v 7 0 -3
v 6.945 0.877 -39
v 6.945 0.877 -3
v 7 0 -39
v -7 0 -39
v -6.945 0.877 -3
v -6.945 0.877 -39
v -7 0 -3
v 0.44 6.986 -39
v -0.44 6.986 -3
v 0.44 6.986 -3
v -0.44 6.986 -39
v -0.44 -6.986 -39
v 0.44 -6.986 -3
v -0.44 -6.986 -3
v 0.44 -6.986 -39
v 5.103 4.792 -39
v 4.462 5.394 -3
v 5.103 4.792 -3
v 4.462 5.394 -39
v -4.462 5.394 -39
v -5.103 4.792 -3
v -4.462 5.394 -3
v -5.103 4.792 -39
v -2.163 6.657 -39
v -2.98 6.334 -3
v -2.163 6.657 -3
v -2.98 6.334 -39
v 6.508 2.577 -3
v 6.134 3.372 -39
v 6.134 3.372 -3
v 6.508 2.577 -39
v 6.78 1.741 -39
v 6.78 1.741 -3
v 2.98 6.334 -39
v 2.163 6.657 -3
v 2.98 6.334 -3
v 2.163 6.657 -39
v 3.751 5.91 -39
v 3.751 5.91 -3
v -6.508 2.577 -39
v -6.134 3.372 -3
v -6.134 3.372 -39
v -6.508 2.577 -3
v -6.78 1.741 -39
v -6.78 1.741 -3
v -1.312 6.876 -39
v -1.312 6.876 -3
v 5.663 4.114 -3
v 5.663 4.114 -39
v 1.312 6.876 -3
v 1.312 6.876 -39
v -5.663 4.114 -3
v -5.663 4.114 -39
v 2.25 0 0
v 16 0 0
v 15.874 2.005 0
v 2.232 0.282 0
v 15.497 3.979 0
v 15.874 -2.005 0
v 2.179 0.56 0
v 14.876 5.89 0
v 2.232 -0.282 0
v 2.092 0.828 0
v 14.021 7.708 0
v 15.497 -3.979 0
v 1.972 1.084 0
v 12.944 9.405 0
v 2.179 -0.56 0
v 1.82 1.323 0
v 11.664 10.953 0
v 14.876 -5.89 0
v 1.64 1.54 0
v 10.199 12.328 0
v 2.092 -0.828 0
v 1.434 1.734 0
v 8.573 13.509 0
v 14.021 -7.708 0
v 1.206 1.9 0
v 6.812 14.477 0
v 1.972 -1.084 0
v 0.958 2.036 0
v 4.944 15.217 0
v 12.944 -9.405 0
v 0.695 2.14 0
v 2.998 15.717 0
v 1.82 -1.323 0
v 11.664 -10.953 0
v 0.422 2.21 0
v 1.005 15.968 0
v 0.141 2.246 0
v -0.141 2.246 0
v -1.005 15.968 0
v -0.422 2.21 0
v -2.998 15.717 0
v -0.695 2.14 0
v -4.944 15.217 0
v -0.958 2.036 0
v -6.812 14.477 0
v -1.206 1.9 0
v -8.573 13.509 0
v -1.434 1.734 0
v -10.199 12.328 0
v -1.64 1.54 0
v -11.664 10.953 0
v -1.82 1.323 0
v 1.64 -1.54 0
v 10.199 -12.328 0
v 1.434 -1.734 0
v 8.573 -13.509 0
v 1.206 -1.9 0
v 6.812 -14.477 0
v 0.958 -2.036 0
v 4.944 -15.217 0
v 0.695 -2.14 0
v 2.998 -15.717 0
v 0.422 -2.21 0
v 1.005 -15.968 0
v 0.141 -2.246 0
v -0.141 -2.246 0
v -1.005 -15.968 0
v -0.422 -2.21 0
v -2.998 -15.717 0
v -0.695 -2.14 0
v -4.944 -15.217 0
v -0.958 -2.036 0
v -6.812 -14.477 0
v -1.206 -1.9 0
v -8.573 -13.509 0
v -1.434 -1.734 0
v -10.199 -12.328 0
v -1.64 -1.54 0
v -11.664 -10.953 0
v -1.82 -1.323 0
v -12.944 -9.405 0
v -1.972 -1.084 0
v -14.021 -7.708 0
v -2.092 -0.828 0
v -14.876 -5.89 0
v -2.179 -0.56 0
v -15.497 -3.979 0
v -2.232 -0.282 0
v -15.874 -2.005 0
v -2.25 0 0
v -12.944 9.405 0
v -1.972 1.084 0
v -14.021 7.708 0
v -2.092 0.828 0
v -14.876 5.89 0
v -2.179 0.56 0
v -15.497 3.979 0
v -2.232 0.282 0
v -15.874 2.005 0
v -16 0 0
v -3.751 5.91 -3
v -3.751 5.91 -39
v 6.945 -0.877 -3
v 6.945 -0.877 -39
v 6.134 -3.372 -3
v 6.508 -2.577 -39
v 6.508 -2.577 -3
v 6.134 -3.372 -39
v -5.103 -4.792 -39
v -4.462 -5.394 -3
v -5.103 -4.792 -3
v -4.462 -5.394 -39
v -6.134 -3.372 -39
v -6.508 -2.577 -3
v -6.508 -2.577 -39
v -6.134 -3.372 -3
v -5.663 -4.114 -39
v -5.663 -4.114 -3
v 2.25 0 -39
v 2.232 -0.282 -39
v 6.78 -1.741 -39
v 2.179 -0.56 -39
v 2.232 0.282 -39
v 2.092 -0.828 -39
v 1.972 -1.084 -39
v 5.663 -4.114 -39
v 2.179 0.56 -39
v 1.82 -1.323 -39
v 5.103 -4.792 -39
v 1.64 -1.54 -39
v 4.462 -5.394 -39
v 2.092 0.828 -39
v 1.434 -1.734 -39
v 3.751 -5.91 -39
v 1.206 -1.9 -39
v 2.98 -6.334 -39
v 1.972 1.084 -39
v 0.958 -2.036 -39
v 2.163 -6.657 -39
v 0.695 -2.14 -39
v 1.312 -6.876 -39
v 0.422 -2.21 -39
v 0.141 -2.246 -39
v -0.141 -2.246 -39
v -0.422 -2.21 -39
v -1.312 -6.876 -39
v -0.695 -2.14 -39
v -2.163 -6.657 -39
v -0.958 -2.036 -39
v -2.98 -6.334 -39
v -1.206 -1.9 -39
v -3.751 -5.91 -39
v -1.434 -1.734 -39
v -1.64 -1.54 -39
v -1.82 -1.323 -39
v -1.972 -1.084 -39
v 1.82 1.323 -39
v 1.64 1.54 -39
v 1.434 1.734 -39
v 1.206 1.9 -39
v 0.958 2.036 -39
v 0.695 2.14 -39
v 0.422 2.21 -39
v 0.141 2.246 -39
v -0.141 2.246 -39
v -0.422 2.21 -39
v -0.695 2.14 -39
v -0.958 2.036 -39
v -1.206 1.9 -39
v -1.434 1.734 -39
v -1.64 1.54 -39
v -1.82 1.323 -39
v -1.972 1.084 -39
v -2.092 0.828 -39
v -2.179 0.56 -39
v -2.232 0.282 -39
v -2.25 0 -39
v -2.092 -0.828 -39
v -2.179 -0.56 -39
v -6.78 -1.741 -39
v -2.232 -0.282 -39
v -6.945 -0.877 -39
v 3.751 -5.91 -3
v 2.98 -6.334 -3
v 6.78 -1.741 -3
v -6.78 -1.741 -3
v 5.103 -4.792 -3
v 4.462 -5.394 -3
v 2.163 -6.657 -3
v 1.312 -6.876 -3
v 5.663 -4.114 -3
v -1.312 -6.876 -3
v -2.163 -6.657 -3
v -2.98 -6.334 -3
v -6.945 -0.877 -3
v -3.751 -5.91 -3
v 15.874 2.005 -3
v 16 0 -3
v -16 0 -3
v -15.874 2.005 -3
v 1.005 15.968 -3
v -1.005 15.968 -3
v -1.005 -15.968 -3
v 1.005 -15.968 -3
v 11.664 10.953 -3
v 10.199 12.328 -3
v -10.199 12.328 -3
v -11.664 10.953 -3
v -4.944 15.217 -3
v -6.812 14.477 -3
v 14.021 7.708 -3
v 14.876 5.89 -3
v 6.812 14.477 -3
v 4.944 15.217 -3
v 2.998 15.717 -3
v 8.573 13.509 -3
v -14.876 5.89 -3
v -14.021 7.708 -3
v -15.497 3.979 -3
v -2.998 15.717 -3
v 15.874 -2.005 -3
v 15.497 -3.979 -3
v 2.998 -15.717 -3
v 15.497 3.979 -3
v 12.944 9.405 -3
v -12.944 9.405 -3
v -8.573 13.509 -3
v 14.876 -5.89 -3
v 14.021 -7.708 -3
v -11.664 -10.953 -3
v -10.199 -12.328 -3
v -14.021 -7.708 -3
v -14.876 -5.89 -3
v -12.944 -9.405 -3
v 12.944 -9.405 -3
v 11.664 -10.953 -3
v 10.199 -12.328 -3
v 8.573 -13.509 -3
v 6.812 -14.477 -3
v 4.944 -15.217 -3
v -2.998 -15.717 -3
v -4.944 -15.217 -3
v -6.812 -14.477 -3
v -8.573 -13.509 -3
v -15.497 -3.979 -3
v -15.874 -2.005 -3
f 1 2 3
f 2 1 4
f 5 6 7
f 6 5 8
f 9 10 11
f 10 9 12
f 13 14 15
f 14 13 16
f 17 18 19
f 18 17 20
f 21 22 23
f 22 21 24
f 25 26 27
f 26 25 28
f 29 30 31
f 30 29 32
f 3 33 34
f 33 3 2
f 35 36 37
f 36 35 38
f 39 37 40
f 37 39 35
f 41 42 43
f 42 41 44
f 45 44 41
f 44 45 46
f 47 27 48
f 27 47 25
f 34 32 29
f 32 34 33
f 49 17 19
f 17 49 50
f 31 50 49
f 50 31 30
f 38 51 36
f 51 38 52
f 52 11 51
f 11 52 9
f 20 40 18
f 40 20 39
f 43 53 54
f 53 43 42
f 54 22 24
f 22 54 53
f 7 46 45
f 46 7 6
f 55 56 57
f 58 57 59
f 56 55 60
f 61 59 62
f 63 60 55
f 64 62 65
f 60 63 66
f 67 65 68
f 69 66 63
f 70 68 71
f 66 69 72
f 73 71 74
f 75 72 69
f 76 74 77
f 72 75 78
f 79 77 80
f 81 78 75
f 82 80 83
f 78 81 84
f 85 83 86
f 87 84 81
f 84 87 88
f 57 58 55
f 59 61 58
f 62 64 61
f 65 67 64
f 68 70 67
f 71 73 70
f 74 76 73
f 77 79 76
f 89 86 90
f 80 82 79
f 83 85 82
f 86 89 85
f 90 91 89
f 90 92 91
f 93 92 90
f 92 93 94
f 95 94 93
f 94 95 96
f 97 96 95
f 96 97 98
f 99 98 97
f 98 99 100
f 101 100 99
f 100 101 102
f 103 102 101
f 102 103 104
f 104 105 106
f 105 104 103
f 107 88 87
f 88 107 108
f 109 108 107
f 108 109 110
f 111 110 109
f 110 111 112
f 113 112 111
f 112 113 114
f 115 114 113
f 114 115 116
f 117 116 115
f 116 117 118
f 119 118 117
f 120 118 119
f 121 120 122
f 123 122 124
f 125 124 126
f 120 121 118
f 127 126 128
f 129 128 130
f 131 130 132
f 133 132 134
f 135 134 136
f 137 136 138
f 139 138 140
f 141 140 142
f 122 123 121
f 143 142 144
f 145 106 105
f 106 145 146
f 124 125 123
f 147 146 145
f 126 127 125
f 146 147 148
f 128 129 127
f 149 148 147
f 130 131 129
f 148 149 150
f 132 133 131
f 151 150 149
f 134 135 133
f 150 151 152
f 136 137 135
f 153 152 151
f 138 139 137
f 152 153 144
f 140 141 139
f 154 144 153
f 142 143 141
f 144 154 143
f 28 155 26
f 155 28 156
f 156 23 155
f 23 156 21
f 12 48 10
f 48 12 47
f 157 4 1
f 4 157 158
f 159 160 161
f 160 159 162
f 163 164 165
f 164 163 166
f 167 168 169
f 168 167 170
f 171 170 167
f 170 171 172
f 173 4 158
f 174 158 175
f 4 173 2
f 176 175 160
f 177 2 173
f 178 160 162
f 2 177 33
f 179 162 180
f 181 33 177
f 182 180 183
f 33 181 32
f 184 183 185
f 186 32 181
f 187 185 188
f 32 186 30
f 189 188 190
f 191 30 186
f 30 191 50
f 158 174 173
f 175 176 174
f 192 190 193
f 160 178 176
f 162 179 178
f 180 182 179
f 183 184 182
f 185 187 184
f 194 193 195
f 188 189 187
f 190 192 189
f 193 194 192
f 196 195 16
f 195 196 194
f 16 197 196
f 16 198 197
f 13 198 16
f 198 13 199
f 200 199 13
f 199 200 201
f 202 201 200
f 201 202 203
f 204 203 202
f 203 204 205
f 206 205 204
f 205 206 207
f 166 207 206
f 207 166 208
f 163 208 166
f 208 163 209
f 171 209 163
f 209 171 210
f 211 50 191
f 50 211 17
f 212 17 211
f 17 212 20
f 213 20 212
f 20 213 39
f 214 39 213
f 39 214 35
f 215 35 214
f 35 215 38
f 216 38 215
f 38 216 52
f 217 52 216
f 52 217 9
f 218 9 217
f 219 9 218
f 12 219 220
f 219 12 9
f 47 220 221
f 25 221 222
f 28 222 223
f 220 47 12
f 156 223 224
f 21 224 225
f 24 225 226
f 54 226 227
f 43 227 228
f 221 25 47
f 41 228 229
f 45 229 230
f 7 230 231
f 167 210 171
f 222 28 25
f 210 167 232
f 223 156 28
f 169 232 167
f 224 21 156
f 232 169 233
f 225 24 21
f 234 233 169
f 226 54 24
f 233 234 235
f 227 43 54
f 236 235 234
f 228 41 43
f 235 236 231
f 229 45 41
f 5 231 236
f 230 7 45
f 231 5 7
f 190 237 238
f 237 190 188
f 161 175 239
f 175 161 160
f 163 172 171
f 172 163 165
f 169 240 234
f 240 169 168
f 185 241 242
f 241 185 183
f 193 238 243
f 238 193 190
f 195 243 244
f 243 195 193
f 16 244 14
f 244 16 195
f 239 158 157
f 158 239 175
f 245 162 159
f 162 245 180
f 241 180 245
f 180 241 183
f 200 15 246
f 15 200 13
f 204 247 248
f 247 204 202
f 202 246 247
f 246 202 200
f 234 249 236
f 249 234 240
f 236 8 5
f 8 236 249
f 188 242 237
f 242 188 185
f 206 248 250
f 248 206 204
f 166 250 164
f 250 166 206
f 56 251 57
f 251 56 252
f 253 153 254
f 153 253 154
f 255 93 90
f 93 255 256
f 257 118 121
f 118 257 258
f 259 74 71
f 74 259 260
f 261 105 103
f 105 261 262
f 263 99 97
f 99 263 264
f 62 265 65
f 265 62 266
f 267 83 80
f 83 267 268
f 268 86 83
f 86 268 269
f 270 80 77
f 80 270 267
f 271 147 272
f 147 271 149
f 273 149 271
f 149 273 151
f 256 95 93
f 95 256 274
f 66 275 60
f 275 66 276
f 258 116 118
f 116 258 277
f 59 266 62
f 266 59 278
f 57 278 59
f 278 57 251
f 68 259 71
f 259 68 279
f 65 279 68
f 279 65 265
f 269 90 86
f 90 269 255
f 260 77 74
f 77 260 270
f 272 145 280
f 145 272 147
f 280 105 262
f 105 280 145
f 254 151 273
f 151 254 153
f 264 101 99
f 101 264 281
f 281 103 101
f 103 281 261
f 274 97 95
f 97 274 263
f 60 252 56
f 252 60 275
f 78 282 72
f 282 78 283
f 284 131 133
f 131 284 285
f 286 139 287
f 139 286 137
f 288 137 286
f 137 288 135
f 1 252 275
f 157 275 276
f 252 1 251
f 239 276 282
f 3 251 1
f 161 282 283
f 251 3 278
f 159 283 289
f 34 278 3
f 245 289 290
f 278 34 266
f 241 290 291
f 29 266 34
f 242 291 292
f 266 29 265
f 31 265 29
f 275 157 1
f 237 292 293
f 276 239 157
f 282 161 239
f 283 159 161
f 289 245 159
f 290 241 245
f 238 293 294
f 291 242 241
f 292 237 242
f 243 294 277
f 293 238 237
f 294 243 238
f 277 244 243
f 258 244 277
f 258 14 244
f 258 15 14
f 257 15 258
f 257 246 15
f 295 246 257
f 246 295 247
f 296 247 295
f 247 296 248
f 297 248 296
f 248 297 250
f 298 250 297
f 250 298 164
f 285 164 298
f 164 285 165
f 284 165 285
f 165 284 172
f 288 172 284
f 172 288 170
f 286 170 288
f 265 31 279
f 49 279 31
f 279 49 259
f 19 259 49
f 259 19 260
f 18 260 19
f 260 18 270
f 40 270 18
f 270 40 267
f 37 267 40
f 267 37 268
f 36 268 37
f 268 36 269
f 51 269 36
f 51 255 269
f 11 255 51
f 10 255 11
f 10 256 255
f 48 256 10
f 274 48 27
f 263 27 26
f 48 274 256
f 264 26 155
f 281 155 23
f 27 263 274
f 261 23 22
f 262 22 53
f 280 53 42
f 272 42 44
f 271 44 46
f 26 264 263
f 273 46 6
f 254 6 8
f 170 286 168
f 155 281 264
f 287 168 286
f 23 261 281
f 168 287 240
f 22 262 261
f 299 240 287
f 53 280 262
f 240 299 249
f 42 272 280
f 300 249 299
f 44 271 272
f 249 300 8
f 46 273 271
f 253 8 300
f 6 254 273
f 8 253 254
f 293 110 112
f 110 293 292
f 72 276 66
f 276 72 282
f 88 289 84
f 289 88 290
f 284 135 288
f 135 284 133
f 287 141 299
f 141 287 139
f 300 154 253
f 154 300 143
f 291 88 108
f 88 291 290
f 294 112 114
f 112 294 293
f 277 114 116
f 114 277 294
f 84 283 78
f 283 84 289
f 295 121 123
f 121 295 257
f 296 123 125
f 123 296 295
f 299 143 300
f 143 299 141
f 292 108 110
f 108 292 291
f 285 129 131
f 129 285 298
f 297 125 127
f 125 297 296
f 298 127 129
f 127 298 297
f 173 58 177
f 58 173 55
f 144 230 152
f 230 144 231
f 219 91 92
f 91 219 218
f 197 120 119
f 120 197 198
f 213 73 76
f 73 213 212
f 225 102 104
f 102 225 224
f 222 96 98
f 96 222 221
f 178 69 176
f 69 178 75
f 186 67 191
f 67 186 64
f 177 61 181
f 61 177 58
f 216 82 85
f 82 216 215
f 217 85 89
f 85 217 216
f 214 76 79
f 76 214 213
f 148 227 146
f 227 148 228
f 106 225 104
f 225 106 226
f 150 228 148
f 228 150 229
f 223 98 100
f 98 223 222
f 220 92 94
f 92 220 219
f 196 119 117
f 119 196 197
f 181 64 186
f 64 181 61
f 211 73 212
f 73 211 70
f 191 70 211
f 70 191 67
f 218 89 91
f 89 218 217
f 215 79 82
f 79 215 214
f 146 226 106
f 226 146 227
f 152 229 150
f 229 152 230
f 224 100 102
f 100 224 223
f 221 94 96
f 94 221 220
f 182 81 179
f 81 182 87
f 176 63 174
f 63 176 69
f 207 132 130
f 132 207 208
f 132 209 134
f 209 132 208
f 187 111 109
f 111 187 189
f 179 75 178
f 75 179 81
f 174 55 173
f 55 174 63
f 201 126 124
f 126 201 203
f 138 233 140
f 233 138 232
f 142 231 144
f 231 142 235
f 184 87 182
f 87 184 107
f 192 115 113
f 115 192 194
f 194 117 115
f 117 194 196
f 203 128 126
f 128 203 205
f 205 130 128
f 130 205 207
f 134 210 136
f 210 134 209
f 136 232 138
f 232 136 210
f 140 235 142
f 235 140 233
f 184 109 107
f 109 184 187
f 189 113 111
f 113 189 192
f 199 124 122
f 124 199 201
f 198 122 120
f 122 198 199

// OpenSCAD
$fn = 50;


difference() {
	union() {
		translate(v = [0, 0, -39.0000000000]) {
			cylinder(h = 39, r = 7.0000000000);
		}
		translate(v = [0, 0, -3.0000000000]) {
			cylinder(h = 3, r = 16.0000000000);
		}
	}
	union() {
		#translate(v = [0, 0, -39]) {
			cylinder(h = 39, r = 2.2500000000);
		}
	}
}
